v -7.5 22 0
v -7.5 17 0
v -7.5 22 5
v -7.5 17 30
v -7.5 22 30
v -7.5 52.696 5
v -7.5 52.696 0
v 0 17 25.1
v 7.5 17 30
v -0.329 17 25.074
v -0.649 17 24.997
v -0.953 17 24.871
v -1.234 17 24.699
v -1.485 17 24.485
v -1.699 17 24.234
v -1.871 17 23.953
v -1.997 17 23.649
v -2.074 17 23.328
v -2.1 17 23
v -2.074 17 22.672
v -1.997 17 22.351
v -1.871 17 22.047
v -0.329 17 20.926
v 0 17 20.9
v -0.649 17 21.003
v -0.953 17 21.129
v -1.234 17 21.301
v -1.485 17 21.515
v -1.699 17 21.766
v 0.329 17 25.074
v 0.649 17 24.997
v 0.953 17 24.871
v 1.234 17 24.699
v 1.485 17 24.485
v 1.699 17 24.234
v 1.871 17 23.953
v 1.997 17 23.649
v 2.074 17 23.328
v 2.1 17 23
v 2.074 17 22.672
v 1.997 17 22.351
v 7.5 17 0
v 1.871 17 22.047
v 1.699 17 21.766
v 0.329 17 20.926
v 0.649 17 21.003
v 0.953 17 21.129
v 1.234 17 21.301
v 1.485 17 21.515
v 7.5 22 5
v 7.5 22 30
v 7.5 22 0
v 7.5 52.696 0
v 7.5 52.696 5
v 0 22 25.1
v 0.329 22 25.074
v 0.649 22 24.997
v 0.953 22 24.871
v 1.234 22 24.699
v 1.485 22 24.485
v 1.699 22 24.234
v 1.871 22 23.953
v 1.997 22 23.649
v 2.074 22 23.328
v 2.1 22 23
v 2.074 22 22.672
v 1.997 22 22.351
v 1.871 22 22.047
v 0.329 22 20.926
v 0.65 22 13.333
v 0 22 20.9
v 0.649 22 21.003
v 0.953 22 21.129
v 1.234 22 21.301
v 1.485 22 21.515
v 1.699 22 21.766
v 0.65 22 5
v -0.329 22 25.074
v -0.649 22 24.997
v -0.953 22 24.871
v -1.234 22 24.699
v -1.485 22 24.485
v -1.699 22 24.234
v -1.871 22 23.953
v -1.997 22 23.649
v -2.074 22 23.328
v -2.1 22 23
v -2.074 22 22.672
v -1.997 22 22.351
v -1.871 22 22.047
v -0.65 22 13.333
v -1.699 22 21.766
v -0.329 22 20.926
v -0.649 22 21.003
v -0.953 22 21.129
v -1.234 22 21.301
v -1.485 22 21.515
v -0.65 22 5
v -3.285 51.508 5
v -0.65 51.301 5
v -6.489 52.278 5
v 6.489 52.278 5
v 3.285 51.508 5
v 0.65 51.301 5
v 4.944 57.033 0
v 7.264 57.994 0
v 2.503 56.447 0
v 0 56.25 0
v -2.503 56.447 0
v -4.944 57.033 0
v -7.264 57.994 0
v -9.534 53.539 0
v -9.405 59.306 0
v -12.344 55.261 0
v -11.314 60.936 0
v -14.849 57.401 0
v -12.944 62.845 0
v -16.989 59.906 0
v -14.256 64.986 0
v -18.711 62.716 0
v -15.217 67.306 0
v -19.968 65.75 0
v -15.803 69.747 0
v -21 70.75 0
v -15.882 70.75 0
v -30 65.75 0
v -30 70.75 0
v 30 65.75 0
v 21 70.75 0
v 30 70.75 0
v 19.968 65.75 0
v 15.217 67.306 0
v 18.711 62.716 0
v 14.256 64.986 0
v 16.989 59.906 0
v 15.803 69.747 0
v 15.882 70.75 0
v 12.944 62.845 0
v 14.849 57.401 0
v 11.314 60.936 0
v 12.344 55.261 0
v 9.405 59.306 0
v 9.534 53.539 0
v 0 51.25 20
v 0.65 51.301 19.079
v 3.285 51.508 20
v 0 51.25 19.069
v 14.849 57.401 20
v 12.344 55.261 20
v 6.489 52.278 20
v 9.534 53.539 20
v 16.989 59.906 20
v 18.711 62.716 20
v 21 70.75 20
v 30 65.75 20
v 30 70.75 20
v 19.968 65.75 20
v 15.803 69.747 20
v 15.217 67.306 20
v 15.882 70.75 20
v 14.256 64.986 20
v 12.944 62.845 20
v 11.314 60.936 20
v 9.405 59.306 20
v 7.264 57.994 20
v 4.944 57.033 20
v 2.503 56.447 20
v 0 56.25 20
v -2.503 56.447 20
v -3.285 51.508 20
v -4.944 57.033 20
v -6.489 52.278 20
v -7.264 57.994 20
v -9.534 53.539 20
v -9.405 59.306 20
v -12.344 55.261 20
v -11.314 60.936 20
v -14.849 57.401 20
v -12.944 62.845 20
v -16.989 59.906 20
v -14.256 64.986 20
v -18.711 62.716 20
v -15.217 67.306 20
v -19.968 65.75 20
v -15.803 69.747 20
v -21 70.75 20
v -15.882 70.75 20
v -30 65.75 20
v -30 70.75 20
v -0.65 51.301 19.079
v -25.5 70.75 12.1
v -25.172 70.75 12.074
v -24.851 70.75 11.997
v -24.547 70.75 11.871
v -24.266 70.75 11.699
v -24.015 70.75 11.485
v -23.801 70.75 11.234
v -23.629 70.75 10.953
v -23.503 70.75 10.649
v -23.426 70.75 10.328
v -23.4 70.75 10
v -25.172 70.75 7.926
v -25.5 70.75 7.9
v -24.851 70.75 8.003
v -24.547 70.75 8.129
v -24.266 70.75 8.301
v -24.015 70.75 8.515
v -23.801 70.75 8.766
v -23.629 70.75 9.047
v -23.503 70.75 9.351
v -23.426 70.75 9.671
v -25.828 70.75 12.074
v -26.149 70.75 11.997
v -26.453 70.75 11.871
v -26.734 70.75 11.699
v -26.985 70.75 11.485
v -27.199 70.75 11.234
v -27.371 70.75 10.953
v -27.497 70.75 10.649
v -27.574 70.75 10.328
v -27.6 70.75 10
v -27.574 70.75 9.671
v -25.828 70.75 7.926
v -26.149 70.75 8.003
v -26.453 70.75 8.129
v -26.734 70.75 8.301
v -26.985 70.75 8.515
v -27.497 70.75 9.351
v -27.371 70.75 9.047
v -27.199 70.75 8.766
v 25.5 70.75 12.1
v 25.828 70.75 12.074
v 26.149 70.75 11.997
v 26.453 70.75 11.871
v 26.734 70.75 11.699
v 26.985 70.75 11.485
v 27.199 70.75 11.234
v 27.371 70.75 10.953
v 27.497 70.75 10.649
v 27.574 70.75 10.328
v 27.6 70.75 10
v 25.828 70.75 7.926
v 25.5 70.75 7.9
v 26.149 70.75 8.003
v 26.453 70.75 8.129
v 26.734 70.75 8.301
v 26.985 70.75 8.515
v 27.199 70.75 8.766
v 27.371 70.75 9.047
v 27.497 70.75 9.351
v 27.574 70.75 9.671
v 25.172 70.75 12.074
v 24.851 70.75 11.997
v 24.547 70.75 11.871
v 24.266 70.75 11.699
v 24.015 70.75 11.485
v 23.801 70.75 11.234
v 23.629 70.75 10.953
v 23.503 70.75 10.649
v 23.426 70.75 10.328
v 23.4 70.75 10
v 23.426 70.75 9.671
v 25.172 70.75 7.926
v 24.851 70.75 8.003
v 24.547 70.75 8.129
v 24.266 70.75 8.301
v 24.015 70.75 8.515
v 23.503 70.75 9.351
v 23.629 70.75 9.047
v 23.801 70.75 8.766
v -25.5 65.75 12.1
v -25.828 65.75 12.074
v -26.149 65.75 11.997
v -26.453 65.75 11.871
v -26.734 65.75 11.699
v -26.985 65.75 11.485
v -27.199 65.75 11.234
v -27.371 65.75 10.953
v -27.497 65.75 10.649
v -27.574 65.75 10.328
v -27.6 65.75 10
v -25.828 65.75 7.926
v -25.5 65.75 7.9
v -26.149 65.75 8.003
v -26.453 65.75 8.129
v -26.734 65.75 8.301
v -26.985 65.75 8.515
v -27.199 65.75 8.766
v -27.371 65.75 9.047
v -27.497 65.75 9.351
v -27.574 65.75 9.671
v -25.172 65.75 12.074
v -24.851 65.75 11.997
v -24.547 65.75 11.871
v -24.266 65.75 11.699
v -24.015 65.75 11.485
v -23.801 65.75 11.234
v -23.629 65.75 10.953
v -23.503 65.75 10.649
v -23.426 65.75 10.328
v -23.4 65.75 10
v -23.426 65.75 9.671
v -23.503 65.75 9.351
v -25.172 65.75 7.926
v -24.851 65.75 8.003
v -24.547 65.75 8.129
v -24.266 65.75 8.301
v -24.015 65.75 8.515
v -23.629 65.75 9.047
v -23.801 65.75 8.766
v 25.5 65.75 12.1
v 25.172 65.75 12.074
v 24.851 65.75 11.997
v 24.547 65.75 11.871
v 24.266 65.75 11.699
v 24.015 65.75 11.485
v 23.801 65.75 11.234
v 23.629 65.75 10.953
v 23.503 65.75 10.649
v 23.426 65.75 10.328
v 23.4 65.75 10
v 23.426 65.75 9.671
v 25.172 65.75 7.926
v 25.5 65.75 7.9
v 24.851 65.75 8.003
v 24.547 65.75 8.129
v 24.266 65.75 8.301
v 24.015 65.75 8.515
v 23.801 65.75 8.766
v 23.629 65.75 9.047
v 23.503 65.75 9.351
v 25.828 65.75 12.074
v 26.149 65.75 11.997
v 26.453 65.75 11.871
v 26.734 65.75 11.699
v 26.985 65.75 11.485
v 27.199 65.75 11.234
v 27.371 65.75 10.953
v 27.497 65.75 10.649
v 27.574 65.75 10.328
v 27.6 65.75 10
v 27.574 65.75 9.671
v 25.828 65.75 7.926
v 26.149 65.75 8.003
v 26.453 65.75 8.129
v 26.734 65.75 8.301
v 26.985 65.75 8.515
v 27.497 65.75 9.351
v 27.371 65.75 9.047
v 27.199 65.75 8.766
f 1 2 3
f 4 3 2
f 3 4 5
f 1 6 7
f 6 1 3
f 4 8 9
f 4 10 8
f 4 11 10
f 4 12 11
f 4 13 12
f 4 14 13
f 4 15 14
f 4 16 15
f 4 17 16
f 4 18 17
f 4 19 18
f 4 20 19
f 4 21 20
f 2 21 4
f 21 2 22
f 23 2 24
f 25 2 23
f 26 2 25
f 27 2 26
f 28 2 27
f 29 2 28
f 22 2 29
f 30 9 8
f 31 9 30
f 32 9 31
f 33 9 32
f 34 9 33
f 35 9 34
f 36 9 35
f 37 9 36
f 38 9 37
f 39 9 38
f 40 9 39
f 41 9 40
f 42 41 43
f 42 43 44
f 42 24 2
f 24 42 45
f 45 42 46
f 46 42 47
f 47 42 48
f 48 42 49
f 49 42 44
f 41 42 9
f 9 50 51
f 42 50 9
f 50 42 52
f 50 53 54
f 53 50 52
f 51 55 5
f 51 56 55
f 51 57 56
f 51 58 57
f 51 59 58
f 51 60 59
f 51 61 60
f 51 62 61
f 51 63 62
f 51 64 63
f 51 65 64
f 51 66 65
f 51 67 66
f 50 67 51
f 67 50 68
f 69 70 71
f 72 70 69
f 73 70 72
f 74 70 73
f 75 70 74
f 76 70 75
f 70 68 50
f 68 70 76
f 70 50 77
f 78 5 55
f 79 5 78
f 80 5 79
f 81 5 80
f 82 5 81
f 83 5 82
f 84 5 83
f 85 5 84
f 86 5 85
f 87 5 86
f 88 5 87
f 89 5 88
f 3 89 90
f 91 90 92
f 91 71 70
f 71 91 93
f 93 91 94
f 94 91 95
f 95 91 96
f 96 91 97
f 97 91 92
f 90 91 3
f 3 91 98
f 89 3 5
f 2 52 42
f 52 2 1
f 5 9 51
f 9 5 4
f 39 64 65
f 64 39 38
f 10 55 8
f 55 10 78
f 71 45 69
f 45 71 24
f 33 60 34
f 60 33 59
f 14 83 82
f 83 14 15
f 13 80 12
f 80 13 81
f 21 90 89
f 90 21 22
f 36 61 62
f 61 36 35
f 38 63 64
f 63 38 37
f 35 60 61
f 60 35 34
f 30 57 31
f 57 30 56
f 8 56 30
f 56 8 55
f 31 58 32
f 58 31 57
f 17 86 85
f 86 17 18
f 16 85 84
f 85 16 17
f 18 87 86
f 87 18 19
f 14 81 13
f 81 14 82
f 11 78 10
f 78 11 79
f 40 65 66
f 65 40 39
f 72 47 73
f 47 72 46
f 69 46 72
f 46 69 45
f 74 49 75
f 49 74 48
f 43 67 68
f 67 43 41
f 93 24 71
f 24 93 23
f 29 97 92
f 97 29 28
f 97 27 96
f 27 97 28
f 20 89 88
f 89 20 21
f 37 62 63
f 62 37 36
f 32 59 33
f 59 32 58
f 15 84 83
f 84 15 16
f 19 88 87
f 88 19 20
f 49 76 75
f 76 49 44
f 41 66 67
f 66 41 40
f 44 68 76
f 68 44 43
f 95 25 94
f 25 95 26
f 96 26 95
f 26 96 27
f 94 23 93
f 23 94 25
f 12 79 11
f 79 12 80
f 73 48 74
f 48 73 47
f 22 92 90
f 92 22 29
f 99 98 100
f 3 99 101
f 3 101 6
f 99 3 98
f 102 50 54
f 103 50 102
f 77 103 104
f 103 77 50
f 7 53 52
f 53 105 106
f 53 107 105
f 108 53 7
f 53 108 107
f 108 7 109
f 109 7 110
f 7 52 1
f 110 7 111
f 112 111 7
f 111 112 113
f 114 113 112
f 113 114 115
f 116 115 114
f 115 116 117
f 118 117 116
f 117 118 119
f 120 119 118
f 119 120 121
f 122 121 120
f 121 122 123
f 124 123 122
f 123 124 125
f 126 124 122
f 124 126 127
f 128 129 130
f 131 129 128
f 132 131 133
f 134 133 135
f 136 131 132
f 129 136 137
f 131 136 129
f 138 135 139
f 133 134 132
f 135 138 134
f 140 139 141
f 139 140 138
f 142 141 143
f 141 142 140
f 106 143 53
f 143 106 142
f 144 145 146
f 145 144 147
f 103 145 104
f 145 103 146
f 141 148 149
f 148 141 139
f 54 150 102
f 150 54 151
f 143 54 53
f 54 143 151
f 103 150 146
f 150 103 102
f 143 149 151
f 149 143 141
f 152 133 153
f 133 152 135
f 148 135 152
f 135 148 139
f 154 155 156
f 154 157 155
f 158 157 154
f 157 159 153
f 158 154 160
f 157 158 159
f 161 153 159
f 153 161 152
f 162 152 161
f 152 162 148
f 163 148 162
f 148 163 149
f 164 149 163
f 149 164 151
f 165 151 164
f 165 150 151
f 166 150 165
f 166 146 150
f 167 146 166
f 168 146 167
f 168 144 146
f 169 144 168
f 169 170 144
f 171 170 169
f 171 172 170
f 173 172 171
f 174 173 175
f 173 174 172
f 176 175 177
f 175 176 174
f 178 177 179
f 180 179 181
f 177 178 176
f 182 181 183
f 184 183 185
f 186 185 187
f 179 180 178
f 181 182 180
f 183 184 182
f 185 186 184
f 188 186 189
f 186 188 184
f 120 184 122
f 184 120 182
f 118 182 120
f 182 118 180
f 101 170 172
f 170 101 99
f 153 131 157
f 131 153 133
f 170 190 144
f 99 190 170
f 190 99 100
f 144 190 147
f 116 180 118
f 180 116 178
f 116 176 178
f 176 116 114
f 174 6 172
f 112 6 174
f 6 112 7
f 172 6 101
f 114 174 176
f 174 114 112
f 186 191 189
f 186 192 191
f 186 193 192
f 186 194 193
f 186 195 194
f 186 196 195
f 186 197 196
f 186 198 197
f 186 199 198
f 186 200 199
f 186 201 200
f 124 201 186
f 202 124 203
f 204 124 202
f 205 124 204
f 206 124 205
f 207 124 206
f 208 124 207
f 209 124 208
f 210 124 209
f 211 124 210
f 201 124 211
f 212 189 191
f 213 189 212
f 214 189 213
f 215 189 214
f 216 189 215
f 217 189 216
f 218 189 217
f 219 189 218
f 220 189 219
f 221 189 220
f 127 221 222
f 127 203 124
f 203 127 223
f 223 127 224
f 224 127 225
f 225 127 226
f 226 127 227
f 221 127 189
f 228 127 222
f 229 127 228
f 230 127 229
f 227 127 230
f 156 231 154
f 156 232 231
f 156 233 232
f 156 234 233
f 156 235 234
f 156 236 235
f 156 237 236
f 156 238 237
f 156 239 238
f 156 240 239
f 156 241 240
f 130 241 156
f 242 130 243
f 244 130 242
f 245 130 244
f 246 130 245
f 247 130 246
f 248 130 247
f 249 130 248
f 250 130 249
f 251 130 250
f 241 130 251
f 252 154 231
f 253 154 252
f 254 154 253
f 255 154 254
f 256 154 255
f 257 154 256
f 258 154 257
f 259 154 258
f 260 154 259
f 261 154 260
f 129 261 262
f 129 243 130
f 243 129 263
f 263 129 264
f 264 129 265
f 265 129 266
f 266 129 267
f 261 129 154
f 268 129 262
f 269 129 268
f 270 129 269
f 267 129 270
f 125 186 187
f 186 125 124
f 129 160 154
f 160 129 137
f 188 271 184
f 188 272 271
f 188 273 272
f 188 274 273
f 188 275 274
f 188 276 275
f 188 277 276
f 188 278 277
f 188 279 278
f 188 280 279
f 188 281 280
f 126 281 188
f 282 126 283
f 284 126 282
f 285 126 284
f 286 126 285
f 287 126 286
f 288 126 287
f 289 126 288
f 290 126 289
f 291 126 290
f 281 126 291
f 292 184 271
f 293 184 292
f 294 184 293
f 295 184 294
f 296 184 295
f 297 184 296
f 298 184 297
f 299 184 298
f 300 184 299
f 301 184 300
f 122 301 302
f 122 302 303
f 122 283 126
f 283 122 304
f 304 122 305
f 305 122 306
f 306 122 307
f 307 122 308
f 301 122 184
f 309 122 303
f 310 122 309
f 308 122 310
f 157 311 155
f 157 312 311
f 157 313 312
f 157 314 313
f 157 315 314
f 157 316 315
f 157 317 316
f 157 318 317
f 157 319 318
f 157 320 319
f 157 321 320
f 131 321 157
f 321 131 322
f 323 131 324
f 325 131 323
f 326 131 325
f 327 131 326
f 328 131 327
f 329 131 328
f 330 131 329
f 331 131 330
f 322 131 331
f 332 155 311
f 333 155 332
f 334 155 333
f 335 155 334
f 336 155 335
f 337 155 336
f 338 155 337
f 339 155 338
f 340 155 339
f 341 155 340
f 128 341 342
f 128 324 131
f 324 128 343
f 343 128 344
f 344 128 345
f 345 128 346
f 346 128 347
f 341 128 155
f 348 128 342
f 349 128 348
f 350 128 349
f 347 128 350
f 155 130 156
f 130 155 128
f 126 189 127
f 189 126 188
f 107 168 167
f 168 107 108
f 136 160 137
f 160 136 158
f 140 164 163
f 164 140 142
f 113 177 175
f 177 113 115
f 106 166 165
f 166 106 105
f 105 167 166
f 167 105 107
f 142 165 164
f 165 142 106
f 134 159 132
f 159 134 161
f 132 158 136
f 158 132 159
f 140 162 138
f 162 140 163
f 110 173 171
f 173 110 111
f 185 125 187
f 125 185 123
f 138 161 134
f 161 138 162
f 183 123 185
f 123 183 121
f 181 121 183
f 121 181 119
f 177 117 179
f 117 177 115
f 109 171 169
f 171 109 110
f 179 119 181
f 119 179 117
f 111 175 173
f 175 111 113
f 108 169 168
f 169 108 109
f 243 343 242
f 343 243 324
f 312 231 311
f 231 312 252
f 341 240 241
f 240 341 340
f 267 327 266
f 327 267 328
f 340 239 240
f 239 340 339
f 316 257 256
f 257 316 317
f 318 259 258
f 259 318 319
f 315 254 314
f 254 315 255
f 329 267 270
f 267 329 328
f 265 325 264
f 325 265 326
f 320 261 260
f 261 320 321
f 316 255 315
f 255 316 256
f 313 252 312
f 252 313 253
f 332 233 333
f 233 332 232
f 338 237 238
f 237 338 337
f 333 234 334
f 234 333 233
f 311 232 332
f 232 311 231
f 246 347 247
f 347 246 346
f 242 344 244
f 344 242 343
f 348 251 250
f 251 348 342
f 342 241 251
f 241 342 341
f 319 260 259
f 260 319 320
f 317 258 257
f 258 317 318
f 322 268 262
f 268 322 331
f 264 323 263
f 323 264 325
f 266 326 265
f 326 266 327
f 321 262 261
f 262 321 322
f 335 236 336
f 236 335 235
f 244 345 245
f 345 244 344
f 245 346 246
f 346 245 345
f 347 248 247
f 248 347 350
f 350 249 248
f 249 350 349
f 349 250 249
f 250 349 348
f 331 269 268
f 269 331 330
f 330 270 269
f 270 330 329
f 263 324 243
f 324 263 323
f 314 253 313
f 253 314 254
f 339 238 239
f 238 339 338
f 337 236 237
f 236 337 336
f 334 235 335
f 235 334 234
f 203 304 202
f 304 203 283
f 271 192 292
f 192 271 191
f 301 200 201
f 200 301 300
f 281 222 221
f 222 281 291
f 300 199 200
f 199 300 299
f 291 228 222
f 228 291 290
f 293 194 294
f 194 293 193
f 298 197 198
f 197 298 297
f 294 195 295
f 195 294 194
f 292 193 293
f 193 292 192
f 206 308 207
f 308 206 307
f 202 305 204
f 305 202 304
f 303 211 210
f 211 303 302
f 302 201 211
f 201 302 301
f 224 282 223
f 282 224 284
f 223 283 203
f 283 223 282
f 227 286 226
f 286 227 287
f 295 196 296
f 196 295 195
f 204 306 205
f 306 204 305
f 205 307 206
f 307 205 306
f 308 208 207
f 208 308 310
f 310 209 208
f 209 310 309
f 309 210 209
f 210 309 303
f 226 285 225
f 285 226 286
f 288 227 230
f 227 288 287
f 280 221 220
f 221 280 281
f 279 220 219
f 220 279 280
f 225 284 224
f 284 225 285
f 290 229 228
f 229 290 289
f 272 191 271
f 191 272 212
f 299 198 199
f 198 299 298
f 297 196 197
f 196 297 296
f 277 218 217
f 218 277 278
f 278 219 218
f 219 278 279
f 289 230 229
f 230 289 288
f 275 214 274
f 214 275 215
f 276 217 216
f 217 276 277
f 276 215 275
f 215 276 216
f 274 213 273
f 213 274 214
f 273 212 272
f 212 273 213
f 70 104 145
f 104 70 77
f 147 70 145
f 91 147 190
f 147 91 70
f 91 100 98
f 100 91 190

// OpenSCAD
// file: ../SRC/BOXHOLDER01A_D02.scad
$fn=40; // model faces resolution.
include <../configuration.scad>


//Drzak na sloup - cast bez drzaku anemometru
module BOXHOLDER01A_D02(){
	
difference()
    {
    union()
        {
        //základní válec
        cylinder(h=D02_vyska_uchytky,r=(D02_prumer_obruby+2*D02_sila_materialu)/2,center=true);
		//úchytové plošky		
        translate([D02_dotahova_vzdalenost+D02_sila_materialu/2,0,0]){cube([D02_sila_materialu,D02_delka_celeho_uchytu,D02_vyska_uchytky],center=true);}
		}
    
    //válec na odečet
    cylinder(h=D02_vyska_uchytky+0.01,r=D02_prumer_obruby/2,center=true);     
	        
    //kvádr na odecet
	translate([D02_dotahova_vzdalenost-(D02_prumer_obruby+2*D02_sila_materialu)/2,0,0]){cube([D02_prumer_obruby+2*D02_sila_materialu,D02_prumer_obruby+2*D02_sila_materialu,D02_vyska_uchytky+0.01],center=true);}
		
	//otvory na sroub
	translate([D02_dotahova_vzdalenost,(D02_delka_celeho_uchytu/2-D02_prumer_obruby/2-D02_sila_materialu)/2+D02_prumer_obruby/2+D02_sila_materialu,0]){rotate([0,90,0]){cylinder(h=D02_sila_materialu+0.01,r=D02_prumer_uchytneho_sroubu/2);}}
    
     //drzak matky
    translate([D02_dotahova_vzdalenost+D02_sila_materialu-D02_vyska_matky,(D02_delka_celeho_uchytu/2-D02_prumer_obruby/2-D02_sila_materialu)/2+D02_prumer_obruby/2+D02_sila_materialu,0]){rotate([0,90,0]){ cylinder (h = D02_vyska_matky+0.01, r= (D02_sirka_matky+0.2)/2, $fn=6);}}
   
     
        
    
        
	translate([D02_dotahova_vzdalenost,-((D02_delka_celeho_uchytu/2-D02_prumer_obruby/2-D02_sila_materialu)/2+D02_prumer_obruby/2+D02_sila_materialu),0]){rotate([0,90,0]){cylinder(h=D02_sila_materialu+0.01,r=D02_prumer_uchytneho_sroubu/2);}}
    
     //drzak matky
    translate([D02_dotahova_vzdalenost+D02_sila_materialu-D02_vyska_matky,-((D02_delka_celeho_uchytu/2-D02_prumer_obruby/2-D02_sila_materialu)/2+D02_prumer_obruby/2+D02_sila_materialu),0]){rotate([0,90,0]){ cylinder (h = D02_vyska_matky+0.01, r= (D02_sirka_matky+0.2)/2, $fn=6);}}

    
	
    }
}

module BOXHOLDER01A_D02_2(){
	
difference()
    {
    union()
        {
        //základní válec
        cylinder(h=D02_vyska_uchytky,r=(D02_prumer_obruby+2*D02_sila_materialu)/2,center=true);
		//úchytové plošky		
        translate([D02_dotahova_vzdalenost+D02_sila_materialu/2,0,0]){cube([D02_sila_materialu,D02_delka_celeho_uchytu,D02_vyska_uchytky],center=true);}
		}
    
    //válec na odečet
    cylinder(h=D02_vyska_uchytky+0.01,r=D02_prumer_obruby/2,center=true);     
	        
    //kvádr na odecet
	translate([D02_dotahova_vzdalenost-(D02_prumer_obruby+2*D02_sila_materialu)/2,0,0]){cube([D02_prumer_obruby+2*D02_sila_materialu,D02_prumer_obruby+2*D02_sila_materialu,D02_vyska_uchytky+0.01],center=true);}
		
	//otvory na sroub
	translate([D02_dotahova_vzdalenost,(D02_delka_celeho_uchytu/2-D02_prumer_obruby/2-D02_sila_materialu)/2+D02_prumer_obruby/2+D02_sila_materialu,0]){rotate([0,90,0]){cylinder(h=D02_sila_materialu+0.01,r=D02_prumer_uchytneho_sroubu/2);}}
    
    
   
     
        
   
    
     
        
	translate([D02_dotahova_vzdalenost,-((D02_delka_celeho_uchytu/2-D02_prumer_obruby/2-D02_sila_materialu)/2+D02_prumer_obruby/2+D02_sila_materialu),0]){rotate([0,90,0]){cylinder(h=D02_sila_materialu+0.01,r=D02_prumer_uchytneho_sroubu/2);}}
    
    

    
    
	
    }
}


//ISLHOLDER01A_D02();
// file: ../SRC/BOXHOLDER01A_D01.scad
$fn=40; // model faces resolution.
include <../configuration.scad>

include <BOXHOLDER01A_D02.scad>


PI=3.141592;

//Držák anemometru

module BOXHOLDER01A_D01()
{
difference()
    {
    union()  
        { 
        //výstuha
            translate([S01_sila_materialu/2,0,0])
        rotate ([0,-90,0])
            linear_extrude (height = S01_sila_materialu, convexity = 10)
                polygon(points=[[D02_vyska_uchytky,D01_delka_tyce+S01_prumer_vnitrni/2+D01_material_pred_zavitem+D02_sila_materialu-1],[0, D01_delka_tyce+S01_prumer_vnitrni/2+D01_material_pred_zavitem+D02_sila_materialu-1],[0,S01_prumer_vnitrni/2+D01_material_pred_zavitem],[D02_vyska_uchytky/1.5,S01_prumer_vnitrni/2+D01_material_pred_zavitem]]);   
  
         rotate ([90,0,0])     
translate([0,15,D01_material_pod_zavitem/2-S01_prumer_vnitrni/2-D01_material_pred_zavitem])
         difference() {   
  cube([D01_sirka_tyce,30,D01_material_pod_zavitem],center=true); 
translate([0,8,0])
cylinder(h=D01_material_pod_zavitem+0.01,r=D02_prumer_uchytneho_sroubu/2,center=true); 
}

        //uchyt na tyc
        translate([0,D01_delka_tyce/2+(S01_prumer_vnitrni-S01_tolerance_zavit)/2+D01_material_pred_zavitem,D01_material_pod_zavitem/2])
            cube([D01_sirka_tyce,D01_delka_tyce,D01_material_pod_zavitem],center=true); 
  
        //uchyt na tyc ovalna cast
        translate([0,(S01_prumer_vnitrni-S01_tolerance_zavit)/2+D01_material_pred_zavitem,D01_material_pod_zavitem/2])
            cube([D01_sirka_tyce,D01_material_za_zavitem+D01_material_pred_zavitem,D01_material_pod_zavitem],center=true);
      
        //material kolem uchytu na sloupek
        translate([0,D01_delka_tyce+(S01_prumer_vnitrni-S01_tolerance_zavit)/2+D01_material_pred_zavitem+(D02_sila_materialu+D02_prumer_obruby/2)/2-D02_dotahova_vzdalenost,D01_material_pod_zavitem/2])

        difference()
            {
            cube([D01_sirka_tyce,D02_sila_materialu+D02_prumer_obruby/2,D01_material_pod_zavitem],center=true);
            
            translate([0,D02_prumer_obruby/2-D02_dotahova_vzdalenost-D02_sila_materialu,0])    
                cylinder(h=D02_vyska_uchytky+0.01,r=D02_prumer_obruby/2,center=true);         
            }        
      
        //uchyt na sloupek
        translate([0,D01_delka_tyce+(S01_prumer_vnitrni-S01_tolerance_zavit)/2+D01_material_pred_zavitem+D02_sila_materialu+(D02_prumer_obruby)/2,D02_vyska_uchytky/2])
            rotate(a=[0,0,270])
                BOXHOLDER01A_D02_2();      

        }

    

    }
}
 
ISLHOLDER01A_D01();
 
// file: ../configuration.scad
$fn=40; // model faces resolution.

//Parametry pro D01 a D02
//nastavení držáku na sloup
//----------------------------------------------------------------
//----------------------------------------------------------------
//není potřeba měnit
S01_prumer_vnitrni=40;
S01_tolerance_zavit=1.5;

S01_sila_materialu=1.3; //sila výtuhy

//D01 - uchyt velky
D01_material_pod_zavitem=5;
D01_material_za_zavitem=3;
D01_material_pred_zavitem=2;
D01_delka_tyce=30;
D01_sirka_tyce=15;



//D02 - uchyt na sloup
D02_sila_materialu=5;
D02_vyska_uchytky=20;
D02_prumer_obruby=32; 
//27mm - 3/4 trubka
D02_delka_celeho_uchytu=60;
D02_dotahova_vzdalenost=1.5;
D02_prumer_uchytneho_sroubu=4.2;
D02_sirka_matky=9.1; //pro M4
D02_vyska_matky=3;
// main file
$fn=100; // model faces resolution.
include <../configuration.scad>



use <../SRC/BOXHOLDER01A_D01.scad>


PI=3.141592;
 
BOXHOLDER01A_D01();


    
  
